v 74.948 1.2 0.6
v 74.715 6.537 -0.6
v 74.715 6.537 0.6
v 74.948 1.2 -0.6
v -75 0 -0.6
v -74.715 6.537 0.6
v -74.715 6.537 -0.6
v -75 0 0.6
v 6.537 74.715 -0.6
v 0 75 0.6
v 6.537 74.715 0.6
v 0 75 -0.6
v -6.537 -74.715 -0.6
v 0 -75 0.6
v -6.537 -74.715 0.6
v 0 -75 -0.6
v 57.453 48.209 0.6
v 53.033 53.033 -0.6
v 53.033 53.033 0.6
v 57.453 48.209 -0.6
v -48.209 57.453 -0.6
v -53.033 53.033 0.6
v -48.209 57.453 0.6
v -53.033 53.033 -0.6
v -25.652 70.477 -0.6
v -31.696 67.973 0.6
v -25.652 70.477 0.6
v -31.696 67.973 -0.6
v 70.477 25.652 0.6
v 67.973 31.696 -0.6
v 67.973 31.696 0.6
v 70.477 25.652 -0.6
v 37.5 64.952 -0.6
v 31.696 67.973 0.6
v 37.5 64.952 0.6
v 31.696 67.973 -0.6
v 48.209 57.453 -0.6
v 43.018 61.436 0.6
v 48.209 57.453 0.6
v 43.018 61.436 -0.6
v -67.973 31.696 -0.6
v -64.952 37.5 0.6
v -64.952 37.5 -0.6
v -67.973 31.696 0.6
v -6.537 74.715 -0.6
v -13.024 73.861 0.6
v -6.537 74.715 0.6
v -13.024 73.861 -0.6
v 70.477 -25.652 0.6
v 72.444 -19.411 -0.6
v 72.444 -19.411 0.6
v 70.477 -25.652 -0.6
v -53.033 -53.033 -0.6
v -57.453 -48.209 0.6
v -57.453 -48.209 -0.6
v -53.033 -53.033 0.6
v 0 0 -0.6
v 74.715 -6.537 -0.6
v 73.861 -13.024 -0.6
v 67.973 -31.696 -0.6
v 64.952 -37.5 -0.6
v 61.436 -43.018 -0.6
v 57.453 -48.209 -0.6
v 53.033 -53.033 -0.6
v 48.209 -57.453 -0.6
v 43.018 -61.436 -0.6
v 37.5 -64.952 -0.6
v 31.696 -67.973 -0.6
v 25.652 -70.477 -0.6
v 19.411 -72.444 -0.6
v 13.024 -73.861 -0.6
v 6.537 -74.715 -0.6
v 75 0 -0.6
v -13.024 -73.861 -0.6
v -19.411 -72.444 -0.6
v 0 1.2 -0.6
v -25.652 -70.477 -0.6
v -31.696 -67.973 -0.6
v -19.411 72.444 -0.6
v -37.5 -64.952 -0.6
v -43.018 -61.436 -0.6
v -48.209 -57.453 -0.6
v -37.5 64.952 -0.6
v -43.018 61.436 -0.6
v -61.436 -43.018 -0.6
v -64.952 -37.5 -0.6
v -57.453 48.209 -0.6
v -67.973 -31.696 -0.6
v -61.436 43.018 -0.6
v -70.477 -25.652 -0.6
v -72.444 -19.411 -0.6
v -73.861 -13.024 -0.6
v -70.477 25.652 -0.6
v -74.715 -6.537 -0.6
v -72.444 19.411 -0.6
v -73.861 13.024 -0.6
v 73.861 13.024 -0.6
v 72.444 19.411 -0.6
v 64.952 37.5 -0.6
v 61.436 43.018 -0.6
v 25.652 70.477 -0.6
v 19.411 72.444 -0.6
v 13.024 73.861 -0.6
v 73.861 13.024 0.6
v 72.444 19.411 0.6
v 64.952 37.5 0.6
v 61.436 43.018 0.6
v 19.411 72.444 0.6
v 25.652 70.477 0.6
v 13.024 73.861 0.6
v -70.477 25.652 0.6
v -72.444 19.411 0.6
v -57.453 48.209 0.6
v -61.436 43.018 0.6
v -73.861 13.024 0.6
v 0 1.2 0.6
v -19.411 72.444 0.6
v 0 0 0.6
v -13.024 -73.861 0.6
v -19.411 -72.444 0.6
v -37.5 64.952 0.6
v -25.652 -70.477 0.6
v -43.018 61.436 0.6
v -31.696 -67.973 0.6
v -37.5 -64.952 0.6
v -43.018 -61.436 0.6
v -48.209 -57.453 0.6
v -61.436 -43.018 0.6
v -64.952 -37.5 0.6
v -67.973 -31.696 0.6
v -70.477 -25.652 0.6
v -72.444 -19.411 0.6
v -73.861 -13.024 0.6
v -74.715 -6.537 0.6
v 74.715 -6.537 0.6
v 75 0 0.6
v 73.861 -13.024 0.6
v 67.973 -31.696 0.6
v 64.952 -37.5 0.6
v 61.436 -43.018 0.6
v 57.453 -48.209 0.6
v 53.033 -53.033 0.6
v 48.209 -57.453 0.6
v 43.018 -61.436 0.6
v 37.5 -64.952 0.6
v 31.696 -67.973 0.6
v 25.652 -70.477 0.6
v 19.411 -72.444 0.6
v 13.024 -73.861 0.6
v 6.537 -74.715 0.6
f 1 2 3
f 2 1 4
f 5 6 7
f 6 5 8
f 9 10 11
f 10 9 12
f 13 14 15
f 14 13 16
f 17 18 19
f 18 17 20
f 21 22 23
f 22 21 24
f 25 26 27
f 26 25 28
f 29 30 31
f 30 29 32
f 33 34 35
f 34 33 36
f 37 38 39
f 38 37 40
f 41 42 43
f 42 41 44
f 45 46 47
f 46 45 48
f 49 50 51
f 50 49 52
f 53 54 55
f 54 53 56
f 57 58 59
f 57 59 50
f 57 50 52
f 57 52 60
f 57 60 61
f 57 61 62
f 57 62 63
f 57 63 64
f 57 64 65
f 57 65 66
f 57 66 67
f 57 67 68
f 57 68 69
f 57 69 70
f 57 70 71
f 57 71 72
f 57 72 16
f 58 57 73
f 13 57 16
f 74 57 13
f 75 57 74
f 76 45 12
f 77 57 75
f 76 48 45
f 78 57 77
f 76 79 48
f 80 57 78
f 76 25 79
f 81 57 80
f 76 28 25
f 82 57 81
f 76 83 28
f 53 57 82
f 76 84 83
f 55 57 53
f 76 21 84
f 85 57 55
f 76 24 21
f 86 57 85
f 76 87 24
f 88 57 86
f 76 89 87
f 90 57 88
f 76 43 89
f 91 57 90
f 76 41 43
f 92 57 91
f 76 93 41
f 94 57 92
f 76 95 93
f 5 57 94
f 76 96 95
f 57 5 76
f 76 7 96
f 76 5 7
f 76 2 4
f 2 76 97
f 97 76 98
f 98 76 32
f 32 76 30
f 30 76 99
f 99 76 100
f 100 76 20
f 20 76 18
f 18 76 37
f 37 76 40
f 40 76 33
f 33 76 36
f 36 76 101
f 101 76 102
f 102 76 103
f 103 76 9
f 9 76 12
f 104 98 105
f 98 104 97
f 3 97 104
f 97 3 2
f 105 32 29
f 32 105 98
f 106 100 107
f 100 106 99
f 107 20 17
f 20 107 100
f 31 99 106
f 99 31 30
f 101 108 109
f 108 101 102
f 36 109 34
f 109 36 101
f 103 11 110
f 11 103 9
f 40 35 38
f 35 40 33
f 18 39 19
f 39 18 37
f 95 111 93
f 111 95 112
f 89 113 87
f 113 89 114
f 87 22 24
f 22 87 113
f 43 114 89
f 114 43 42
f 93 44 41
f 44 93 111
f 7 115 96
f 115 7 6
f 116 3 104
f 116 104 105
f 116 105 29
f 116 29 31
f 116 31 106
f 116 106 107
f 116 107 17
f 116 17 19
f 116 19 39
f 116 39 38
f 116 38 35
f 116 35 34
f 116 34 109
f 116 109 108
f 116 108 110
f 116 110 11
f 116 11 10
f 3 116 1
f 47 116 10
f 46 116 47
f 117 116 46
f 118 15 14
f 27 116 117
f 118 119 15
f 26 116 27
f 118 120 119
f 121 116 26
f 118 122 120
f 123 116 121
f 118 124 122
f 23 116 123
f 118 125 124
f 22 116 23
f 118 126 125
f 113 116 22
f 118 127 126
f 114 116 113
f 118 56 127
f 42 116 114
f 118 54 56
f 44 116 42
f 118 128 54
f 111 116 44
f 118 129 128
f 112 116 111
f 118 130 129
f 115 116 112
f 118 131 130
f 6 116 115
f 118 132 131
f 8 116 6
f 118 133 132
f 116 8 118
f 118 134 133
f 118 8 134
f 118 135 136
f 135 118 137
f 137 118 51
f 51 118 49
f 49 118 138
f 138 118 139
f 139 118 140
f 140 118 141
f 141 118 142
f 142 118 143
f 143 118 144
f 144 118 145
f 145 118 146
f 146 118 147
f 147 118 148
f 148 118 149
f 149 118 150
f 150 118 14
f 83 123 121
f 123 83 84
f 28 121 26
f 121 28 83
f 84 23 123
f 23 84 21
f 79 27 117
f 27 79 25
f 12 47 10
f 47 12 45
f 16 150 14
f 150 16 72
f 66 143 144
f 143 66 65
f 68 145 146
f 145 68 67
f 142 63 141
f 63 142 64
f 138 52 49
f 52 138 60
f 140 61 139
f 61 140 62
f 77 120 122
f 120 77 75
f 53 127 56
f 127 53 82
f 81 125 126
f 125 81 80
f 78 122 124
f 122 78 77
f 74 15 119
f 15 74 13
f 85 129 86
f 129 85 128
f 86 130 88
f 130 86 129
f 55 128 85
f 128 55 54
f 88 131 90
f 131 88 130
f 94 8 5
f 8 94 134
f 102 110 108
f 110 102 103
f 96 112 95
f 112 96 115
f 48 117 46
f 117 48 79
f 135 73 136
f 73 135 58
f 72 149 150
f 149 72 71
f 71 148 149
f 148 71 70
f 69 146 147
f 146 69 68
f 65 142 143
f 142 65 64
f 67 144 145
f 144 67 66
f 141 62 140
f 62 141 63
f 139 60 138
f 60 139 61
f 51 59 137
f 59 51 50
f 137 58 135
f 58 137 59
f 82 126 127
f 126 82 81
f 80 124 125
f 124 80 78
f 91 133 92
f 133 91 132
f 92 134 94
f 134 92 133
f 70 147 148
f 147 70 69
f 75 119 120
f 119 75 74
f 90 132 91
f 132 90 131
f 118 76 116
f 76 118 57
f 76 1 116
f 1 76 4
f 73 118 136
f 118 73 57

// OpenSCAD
// CSG-modules.scad - Basic usage of modules, if, color, $fs/$fa

// Global resolution
$fs = 0.1;  // Don't generate smaller facets than 0.1 mm
$fa = 5;    // Don't generate larger angles than 5 degrees

difference(){
    union(){
    base();/*
        riser1();
        riser2();
            rotate([0,0,90]) riser1();
            rotate([0,0,270]) riser1();
            rotate([0,0,90]) riser2();
            rotate([0,0,270]) riser2();*/        
    }
    baseSlot();
    //rotate([0,0,90]) translate([37.5,0,0]) baseSlot();
    //rotate([0,0,270]) translate([37.5,0,0]) baseSlot();

}


//rotate([0,0,90]) translate([37.5,0,0]) baseASlot();

module base() {
    color("Blue") cylinder(h=1.2, r=75, center=true);
    }
    
module baseSlot() {
    color("Red") translate([0,0,-3]) cube([76, 1.2, 6]); 
    }
   
module riser1() {
    color("Yellow") translate([37.5,2,1]) cube([34,1.2,3]);
    }    
    
module riser2() {
    color("Green") translate([37.5,-2,1]) cube([34,1.2,3]);
    }
